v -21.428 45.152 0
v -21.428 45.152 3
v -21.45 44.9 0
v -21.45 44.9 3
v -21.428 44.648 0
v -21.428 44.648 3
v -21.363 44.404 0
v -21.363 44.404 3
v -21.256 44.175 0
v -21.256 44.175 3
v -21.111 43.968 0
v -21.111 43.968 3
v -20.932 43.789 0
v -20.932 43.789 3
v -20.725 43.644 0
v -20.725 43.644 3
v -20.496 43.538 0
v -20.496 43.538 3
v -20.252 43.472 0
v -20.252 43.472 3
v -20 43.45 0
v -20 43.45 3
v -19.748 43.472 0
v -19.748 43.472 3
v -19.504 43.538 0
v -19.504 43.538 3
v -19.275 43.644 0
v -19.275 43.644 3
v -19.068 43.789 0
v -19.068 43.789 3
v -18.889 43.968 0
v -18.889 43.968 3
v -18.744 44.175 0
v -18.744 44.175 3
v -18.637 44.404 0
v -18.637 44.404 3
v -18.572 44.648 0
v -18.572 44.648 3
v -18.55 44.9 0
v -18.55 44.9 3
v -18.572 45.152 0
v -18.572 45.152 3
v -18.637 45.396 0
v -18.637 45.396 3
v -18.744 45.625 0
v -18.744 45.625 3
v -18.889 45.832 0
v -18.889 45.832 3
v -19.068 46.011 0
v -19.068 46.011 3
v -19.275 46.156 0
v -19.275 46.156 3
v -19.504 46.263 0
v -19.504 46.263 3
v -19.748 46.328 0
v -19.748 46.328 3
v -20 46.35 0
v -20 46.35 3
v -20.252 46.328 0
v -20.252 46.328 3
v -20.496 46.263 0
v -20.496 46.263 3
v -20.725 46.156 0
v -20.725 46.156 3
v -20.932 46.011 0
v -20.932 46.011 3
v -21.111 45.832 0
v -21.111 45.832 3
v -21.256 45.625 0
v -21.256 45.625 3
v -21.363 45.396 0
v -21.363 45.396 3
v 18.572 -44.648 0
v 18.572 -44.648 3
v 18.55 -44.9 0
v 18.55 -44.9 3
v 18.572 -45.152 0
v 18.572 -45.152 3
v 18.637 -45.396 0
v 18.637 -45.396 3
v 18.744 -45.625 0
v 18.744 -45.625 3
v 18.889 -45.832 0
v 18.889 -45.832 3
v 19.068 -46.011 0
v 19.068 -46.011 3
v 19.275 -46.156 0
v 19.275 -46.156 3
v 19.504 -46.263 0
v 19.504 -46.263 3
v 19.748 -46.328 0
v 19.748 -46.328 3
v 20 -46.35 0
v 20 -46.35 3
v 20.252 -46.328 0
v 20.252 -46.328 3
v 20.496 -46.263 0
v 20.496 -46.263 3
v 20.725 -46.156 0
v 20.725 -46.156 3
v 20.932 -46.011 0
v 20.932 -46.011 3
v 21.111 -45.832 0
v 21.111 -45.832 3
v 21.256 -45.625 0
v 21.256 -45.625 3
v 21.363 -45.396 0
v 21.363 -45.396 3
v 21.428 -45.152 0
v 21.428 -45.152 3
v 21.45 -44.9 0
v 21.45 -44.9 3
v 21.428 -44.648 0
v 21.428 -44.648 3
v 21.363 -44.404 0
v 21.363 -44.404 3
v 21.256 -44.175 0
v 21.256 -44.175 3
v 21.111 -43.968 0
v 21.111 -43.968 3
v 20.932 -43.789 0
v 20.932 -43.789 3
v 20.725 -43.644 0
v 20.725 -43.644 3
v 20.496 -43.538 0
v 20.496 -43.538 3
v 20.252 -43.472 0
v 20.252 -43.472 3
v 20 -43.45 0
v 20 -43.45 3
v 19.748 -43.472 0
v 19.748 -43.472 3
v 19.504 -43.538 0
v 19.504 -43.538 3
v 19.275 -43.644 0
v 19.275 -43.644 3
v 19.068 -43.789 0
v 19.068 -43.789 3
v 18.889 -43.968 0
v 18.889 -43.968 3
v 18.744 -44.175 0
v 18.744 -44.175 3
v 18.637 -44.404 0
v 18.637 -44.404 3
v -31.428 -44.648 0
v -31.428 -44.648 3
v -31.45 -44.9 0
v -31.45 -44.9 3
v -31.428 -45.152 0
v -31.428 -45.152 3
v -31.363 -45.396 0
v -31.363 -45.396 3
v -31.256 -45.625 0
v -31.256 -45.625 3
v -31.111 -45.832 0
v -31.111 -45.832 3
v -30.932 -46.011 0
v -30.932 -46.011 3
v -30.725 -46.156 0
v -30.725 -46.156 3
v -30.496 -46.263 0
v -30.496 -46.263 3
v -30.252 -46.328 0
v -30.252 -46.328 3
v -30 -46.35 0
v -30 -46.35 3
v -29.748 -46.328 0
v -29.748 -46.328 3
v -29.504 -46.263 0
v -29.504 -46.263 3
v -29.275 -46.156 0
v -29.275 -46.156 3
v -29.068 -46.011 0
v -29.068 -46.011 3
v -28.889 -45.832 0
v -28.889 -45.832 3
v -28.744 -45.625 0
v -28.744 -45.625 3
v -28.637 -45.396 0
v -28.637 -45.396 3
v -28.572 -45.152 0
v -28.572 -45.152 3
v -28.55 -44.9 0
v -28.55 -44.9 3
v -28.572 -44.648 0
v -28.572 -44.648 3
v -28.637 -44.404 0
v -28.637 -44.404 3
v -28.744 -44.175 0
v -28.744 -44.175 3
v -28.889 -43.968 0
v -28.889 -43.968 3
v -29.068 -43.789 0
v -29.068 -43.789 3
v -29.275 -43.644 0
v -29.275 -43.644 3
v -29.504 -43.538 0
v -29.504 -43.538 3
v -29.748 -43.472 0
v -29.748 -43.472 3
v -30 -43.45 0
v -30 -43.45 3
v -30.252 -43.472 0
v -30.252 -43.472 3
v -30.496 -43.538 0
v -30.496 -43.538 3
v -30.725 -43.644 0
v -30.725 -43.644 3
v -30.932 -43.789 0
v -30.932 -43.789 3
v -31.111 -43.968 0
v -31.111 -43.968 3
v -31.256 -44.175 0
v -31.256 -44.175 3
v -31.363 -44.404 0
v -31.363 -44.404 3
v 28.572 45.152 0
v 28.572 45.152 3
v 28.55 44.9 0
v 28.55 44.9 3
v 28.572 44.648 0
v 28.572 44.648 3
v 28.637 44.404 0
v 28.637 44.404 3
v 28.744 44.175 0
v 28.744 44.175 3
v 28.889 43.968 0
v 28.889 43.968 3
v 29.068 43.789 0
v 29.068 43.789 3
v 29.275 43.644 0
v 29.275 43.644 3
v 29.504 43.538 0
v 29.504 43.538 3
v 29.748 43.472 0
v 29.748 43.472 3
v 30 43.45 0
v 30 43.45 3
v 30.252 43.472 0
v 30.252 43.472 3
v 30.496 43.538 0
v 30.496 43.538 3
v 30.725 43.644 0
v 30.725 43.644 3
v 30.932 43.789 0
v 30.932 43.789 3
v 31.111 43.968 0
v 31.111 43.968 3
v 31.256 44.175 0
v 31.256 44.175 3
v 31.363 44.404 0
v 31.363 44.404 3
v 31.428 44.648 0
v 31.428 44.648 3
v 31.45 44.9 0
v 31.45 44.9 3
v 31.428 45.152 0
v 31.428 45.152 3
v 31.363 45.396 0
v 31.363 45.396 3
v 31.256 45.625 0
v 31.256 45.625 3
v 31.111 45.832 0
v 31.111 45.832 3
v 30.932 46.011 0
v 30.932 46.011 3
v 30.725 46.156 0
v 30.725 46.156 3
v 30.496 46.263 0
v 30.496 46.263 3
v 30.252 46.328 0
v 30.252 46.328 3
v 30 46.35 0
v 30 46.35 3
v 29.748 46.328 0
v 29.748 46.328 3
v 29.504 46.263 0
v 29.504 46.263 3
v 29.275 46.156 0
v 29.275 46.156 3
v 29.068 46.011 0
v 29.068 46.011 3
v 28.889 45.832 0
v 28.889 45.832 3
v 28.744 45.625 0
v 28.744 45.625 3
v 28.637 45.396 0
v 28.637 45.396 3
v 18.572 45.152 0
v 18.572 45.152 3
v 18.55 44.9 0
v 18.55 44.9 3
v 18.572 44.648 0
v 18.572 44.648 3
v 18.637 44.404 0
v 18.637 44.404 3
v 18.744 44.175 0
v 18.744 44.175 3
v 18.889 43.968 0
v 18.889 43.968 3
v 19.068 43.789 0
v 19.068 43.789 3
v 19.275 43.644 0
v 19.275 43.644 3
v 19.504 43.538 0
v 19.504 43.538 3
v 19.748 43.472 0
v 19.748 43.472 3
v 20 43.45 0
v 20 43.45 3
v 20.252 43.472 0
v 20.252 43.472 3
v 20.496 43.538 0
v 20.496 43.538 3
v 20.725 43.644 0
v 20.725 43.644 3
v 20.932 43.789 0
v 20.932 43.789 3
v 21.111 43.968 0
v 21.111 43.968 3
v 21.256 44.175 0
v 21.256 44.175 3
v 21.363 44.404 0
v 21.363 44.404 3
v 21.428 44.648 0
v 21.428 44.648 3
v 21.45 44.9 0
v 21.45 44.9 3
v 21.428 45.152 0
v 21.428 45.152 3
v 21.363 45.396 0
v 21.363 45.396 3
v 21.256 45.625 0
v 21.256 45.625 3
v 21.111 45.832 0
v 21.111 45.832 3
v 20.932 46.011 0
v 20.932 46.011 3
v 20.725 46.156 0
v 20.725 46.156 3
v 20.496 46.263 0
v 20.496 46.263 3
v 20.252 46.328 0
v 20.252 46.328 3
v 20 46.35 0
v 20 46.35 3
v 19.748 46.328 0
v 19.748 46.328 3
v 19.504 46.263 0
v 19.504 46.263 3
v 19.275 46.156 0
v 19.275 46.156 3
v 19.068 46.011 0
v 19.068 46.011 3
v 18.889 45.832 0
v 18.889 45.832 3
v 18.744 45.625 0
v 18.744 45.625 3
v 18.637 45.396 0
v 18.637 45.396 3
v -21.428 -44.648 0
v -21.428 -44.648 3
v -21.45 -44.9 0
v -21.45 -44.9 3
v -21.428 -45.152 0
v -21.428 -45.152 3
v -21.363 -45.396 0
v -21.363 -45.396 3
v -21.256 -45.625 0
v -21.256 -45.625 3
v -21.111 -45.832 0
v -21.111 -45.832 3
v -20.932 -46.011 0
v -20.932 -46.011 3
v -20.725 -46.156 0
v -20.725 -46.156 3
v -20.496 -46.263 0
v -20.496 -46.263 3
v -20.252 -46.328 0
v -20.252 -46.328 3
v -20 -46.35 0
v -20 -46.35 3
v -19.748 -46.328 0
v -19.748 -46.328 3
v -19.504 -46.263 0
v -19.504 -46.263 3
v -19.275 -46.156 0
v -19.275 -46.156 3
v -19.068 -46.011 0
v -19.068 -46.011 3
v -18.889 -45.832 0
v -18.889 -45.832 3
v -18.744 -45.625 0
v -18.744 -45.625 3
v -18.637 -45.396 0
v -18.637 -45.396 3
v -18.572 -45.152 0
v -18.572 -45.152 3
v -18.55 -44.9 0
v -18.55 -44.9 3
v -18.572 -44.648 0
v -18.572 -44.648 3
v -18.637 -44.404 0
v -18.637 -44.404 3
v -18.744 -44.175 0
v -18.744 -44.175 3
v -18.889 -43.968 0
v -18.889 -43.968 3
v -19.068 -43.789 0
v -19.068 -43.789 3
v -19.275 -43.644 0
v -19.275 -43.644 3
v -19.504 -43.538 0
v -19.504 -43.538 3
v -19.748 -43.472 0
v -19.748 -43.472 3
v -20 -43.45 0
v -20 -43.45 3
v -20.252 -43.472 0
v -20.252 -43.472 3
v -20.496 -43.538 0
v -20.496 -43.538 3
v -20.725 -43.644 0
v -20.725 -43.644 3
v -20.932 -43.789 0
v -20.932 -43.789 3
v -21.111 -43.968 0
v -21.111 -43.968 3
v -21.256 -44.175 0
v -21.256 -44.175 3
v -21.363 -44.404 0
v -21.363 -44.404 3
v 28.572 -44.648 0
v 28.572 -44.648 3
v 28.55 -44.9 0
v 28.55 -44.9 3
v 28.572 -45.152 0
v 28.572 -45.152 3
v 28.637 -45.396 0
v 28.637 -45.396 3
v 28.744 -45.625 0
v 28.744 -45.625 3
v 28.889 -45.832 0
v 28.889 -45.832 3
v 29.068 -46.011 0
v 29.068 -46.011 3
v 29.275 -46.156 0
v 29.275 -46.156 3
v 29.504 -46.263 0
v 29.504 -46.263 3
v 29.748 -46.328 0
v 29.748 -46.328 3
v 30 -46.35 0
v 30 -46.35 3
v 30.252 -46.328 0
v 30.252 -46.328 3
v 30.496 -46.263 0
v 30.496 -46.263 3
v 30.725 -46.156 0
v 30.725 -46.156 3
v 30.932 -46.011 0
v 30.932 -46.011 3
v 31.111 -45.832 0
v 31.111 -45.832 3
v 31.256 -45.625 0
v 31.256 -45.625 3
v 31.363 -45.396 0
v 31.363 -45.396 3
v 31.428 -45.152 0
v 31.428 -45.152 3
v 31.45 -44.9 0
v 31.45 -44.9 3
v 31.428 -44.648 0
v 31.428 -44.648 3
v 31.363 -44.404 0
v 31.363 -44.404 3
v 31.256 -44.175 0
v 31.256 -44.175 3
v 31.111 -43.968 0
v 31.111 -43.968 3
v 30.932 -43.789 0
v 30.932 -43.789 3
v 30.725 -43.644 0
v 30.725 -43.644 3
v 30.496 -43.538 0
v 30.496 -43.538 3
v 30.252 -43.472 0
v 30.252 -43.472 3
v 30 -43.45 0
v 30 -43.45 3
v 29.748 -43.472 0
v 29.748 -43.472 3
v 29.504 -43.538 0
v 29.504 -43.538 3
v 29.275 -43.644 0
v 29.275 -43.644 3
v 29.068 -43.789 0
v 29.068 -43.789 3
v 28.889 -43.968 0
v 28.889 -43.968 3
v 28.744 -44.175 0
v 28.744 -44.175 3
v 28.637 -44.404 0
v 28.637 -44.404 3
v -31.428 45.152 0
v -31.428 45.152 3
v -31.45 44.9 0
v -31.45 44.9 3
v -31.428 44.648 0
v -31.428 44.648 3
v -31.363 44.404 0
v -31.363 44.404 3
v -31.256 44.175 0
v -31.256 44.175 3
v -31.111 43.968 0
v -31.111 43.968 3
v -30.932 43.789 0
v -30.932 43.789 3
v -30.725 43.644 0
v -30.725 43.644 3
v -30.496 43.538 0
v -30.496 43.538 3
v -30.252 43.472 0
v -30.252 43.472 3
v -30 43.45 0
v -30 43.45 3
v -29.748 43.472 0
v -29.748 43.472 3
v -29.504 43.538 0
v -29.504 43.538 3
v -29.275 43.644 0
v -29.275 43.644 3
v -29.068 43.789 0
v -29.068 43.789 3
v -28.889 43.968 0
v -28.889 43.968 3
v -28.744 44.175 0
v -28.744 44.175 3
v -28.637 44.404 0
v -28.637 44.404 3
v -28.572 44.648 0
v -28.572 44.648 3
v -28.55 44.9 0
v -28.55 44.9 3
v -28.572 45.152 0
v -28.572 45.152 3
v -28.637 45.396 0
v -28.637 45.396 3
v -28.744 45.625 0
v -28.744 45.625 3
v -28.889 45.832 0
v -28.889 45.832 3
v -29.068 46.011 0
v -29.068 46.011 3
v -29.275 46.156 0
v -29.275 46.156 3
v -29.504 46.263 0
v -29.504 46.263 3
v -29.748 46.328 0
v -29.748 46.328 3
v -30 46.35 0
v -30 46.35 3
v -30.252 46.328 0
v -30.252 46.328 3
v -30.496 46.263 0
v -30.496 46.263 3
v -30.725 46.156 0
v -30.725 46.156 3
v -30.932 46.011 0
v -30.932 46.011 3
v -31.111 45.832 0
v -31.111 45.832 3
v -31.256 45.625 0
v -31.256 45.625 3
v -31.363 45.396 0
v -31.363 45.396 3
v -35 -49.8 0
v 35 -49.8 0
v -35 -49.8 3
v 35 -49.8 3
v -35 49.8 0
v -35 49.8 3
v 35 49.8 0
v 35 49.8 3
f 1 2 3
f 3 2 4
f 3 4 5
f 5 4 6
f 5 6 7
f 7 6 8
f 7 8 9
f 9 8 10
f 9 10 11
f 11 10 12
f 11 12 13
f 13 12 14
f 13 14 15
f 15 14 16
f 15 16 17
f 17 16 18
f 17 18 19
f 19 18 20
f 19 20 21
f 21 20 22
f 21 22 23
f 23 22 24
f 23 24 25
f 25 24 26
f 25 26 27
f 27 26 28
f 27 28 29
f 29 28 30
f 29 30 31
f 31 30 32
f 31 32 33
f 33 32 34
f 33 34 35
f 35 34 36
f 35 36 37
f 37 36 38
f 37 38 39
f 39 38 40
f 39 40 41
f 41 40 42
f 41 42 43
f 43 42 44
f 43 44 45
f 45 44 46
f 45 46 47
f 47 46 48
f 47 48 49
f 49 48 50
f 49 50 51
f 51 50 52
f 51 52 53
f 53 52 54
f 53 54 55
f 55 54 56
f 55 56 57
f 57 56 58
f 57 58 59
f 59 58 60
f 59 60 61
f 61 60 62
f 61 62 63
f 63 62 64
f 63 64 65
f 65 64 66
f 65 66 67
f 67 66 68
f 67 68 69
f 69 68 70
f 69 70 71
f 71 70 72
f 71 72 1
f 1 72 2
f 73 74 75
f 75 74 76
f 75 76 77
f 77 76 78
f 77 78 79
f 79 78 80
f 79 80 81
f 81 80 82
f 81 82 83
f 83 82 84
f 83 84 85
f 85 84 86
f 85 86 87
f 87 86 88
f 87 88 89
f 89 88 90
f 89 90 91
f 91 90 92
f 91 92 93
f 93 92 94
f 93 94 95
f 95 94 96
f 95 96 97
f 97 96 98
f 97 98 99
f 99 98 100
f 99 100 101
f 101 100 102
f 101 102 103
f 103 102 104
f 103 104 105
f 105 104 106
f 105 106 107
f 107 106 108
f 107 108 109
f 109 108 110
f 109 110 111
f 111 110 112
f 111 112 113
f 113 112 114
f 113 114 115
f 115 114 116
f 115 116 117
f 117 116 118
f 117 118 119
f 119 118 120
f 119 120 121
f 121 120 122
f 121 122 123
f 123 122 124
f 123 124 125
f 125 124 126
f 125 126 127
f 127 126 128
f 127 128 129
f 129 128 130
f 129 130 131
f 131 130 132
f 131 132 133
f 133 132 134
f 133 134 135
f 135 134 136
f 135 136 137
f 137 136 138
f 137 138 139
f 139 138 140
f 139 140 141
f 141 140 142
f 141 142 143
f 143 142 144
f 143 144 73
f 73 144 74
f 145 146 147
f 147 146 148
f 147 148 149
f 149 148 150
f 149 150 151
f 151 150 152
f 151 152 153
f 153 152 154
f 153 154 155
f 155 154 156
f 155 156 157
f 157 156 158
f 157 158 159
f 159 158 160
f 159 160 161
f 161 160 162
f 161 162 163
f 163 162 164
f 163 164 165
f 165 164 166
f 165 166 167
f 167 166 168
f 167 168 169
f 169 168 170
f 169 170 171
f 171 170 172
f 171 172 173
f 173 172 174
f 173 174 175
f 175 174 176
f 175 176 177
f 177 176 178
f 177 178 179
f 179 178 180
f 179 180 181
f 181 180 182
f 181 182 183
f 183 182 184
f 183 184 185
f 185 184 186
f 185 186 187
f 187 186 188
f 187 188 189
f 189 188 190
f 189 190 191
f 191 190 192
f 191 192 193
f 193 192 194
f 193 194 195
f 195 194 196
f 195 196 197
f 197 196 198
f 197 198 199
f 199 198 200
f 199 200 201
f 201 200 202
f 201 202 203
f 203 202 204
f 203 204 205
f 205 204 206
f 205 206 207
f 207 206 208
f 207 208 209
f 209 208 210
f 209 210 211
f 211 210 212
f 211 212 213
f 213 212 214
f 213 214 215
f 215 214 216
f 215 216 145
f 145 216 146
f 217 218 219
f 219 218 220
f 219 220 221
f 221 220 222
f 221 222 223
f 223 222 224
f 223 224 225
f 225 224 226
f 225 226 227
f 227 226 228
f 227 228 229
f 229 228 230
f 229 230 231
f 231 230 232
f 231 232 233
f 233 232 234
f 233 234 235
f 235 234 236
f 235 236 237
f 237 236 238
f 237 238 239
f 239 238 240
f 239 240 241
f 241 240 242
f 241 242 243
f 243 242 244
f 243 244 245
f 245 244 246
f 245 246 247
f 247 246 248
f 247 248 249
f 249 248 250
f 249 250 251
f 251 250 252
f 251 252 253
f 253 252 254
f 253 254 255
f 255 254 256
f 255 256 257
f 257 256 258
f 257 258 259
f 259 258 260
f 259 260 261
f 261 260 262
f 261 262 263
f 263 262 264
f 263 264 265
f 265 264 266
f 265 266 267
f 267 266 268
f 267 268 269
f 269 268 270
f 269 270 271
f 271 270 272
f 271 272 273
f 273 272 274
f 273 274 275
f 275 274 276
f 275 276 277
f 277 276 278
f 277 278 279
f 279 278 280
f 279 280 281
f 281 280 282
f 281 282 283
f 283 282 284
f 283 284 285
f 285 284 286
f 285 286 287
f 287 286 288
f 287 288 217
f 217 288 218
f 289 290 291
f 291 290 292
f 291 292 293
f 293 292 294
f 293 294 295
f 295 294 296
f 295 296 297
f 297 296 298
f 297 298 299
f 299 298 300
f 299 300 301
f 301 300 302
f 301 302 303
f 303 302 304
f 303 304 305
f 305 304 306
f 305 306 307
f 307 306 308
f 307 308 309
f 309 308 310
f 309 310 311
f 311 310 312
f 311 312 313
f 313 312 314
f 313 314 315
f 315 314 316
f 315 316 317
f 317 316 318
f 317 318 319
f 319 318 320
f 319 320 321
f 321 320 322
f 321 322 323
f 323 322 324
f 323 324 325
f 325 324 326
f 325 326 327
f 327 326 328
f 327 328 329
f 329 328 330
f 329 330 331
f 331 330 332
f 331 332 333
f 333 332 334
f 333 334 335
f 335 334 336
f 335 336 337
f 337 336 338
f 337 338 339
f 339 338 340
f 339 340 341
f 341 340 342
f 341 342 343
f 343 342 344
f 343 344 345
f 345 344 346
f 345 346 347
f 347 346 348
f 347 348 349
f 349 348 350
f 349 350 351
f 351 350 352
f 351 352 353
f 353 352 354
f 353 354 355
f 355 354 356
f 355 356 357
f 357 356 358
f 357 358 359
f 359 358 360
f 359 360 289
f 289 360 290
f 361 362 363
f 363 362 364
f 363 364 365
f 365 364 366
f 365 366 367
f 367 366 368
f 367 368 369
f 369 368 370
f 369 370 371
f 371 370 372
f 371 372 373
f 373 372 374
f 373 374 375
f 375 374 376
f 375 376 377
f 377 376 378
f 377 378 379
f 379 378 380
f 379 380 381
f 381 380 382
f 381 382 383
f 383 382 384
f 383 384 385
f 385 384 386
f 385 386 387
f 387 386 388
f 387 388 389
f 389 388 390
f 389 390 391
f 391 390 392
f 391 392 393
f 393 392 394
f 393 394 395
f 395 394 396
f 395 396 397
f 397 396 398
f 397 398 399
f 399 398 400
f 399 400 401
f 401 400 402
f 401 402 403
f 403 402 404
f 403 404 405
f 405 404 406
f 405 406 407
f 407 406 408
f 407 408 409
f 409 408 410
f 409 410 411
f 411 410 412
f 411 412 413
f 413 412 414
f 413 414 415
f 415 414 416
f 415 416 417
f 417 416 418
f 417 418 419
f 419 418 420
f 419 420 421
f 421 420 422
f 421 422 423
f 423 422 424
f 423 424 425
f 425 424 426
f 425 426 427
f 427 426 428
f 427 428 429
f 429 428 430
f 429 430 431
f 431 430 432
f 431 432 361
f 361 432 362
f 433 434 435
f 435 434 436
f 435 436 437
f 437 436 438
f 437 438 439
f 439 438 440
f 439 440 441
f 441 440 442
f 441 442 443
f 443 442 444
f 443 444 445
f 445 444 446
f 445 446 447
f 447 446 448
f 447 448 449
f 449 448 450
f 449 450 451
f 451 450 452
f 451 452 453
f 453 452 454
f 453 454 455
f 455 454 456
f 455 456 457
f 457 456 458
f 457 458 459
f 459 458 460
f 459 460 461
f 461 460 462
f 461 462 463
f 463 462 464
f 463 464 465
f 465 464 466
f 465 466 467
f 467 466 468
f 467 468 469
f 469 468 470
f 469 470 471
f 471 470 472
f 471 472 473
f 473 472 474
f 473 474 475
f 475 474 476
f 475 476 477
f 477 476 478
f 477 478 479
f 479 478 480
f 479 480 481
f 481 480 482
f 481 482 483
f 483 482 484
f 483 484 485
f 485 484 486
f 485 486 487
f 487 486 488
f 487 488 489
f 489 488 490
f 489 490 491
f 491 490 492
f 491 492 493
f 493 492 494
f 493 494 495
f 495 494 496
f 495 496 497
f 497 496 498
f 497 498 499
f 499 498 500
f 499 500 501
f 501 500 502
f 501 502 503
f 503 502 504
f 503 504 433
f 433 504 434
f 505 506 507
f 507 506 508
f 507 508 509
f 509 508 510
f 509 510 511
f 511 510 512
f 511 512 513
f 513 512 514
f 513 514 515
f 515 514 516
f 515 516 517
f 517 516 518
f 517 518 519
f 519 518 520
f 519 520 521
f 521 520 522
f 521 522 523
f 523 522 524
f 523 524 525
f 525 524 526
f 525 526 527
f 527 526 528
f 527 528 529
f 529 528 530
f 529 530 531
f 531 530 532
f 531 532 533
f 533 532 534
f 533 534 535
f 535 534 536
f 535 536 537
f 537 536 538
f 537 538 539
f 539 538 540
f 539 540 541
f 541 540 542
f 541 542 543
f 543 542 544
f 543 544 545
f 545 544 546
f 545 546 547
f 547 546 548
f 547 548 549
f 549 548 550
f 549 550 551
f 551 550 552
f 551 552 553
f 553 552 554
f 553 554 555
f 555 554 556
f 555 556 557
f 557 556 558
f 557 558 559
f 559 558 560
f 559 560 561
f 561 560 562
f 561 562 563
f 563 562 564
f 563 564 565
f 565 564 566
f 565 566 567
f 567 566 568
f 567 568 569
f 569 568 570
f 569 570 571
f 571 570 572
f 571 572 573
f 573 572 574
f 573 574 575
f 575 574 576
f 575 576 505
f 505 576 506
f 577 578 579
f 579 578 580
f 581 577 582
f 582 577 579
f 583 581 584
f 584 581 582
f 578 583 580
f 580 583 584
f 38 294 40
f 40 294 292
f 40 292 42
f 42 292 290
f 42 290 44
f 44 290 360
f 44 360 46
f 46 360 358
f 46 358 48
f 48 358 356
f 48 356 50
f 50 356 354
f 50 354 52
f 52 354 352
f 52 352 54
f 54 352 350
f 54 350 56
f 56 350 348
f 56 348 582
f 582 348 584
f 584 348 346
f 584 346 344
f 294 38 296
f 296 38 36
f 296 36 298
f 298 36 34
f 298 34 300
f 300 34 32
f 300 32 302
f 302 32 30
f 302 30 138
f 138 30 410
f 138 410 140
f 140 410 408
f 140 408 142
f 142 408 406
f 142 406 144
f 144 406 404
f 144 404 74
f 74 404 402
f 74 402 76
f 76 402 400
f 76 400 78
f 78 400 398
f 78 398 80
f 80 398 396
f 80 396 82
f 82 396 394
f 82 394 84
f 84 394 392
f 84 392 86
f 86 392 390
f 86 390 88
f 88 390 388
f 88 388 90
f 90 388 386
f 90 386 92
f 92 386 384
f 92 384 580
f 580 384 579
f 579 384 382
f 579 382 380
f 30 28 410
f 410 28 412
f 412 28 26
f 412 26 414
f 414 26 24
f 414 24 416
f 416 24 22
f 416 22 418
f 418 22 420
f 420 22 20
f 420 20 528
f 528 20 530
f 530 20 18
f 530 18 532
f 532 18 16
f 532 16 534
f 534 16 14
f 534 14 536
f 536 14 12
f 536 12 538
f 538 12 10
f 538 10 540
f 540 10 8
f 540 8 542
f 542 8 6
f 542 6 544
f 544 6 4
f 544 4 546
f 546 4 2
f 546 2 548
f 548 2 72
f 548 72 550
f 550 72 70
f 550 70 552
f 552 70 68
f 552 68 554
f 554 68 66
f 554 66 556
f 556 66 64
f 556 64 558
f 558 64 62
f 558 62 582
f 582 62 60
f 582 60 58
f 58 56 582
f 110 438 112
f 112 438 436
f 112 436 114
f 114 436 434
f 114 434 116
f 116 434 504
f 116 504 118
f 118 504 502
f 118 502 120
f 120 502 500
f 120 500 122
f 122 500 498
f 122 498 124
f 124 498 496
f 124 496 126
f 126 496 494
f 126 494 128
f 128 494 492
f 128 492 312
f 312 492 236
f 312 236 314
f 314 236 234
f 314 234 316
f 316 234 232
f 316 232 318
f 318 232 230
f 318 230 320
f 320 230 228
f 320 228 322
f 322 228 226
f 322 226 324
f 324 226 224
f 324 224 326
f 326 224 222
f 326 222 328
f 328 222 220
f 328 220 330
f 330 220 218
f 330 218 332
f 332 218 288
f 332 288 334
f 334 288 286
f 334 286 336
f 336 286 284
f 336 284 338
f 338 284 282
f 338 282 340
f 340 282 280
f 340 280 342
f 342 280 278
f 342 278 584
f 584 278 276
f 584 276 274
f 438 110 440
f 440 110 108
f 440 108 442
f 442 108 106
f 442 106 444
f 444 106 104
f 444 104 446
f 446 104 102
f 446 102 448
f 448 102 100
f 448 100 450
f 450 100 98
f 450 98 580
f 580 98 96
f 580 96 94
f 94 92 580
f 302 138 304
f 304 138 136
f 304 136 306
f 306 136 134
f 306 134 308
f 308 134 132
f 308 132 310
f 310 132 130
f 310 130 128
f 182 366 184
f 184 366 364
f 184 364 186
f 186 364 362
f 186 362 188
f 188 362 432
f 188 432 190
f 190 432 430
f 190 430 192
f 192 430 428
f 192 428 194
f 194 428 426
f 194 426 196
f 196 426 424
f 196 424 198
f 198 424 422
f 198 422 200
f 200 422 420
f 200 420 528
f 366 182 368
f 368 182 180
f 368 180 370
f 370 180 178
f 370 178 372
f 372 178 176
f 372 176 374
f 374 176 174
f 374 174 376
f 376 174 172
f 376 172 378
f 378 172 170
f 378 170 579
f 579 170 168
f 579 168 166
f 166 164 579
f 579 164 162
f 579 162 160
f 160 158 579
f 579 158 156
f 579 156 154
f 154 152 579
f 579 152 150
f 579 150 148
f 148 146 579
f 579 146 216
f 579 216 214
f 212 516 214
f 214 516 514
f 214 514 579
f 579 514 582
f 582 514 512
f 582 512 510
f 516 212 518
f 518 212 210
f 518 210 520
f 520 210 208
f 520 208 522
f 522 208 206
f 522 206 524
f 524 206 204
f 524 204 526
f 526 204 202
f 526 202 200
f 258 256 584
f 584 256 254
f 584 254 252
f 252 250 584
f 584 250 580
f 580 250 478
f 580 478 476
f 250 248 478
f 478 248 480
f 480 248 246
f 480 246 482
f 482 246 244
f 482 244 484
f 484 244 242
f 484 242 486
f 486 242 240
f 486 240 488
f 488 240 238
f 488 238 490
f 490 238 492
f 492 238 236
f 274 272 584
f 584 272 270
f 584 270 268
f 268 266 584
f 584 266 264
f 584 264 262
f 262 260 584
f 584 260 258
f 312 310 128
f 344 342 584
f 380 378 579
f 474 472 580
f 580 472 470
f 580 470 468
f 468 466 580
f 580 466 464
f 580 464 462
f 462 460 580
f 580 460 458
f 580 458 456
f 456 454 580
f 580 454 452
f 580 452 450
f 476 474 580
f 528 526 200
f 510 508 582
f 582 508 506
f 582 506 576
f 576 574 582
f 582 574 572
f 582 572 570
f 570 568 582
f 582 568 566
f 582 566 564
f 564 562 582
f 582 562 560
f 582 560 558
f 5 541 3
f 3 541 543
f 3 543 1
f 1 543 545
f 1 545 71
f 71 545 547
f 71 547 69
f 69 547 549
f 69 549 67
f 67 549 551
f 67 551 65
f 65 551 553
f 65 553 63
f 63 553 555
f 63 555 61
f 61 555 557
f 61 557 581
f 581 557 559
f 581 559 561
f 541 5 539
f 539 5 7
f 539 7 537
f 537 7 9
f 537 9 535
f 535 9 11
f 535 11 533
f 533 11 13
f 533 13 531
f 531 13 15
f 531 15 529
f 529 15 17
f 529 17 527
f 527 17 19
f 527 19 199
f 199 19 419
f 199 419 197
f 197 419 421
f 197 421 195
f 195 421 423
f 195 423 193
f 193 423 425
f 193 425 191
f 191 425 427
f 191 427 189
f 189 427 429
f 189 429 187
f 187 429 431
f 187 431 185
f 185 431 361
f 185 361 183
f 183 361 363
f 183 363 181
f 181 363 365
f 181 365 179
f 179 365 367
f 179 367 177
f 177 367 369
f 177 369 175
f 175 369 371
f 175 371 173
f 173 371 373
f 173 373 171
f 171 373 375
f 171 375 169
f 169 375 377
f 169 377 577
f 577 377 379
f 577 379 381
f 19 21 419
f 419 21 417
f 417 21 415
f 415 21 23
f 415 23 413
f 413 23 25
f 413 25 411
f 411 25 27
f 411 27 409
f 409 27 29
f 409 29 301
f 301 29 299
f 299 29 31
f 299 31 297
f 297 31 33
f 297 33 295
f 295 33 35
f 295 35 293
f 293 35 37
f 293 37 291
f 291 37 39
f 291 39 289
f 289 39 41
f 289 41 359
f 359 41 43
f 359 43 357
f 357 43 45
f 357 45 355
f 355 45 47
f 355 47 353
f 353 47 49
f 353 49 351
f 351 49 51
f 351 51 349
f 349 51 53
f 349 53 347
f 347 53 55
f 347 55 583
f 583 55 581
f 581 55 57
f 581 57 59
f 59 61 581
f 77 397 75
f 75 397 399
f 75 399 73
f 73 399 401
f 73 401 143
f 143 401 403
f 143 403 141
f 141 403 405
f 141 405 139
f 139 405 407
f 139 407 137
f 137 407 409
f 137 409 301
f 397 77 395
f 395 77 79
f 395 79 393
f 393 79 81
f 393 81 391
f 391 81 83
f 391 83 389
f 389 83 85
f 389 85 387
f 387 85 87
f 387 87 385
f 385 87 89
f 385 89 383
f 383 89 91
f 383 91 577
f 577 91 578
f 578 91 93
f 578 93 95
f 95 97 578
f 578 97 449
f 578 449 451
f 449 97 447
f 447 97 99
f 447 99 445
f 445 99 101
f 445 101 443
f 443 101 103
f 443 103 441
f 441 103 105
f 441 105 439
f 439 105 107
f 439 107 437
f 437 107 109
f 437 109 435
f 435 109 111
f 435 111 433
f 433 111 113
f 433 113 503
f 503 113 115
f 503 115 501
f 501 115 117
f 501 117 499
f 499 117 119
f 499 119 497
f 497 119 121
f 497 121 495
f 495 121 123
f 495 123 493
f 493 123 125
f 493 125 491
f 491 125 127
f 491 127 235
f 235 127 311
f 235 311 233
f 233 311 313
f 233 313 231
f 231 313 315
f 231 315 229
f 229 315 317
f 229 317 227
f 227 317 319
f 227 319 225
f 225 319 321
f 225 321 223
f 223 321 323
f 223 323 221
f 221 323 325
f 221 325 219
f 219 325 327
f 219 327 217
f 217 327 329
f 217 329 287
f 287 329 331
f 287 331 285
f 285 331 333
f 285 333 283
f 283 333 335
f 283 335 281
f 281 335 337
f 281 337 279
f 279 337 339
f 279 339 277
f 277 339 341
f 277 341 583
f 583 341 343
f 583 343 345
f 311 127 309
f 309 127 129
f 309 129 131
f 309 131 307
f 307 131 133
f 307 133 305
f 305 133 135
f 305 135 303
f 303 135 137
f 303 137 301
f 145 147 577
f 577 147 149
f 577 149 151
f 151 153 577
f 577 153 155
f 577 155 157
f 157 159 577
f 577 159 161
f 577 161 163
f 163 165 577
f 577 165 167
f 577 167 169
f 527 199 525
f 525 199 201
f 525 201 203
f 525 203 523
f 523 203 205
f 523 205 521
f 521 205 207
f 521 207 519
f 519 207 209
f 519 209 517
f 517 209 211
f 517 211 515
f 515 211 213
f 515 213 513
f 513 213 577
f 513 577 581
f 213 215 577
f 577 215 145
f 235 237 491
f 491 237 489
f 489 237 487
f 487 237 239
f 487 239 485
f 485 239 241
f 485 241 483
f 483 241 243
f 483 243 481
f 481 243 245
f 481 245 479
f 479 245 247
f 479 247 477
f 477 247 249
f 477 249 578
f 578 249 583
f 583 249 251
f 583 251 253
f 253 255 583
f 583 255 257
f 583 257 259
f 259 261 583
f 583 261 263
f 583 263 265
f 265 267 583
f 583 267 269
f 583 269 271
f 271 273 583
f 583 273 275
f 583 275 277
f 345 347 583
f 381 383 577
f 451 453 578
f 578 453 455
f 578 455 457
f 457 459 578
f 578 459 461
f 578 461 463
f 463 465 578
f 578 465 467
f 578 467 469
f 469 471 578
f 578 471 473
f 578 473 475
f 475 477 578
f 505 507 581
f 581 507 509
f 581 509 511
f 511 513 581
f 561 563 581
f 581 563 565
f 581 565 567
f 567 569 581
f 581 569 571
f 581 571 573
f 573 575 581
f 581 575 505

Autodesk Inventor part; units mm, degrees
ref_plane "YZ Plane" through (0, 0, 0) normal (1, 0, 0) x (0, 1, 0)
ref_plane "XZ Plane" through (0, 0, 0) normal (0, 1, 0) x (-1, 0, 0)
ref_plane "XY Plane" through (0, 0, 0) normal (0, 0, 1) x (1, 0, 0)
ref_plane "Arbeitsebene1" through (0, 0, 0) normal (0, 0, 1) x (1, 0, 0)
sketch "Skizze1" plane through (0, 0, 0) normal (0, 0, 1) x (1, 0, 0)
  circle A0 centre (-20, -44.9) radius 1.75 projected
  circle A1 centre (30, -44.9) radius 1.75 projected
  circle A2 centre (20, -44.9) radius 1.75 projected
  circle A3 centre (-30, -44.9) radius 1.75 projected
  line L0 (-35, -49.8) -> (-35, -35.9) projected
  line L1 (35, -49.8) -> (-35, -49.8) projected
  line L2 (35, -35.9) -> (35, -49.8) projected
  line L3 (-35, -35.9) -> (35, -35.9) projected
  arc A4 (-19.0986, 43.4) -> (-20.9014, 43.4) centre (-20, 44.9) ccw projected
  line L4 (19.0986, 43.4) -> (-19.0986, 43.4) projected
  arc A5 (20.9014, 43.4) -> (19.0986, 43.4) centre (20, 44.9) ccw projected
  line L5 (29.0986, 43.4) -> (20.9014, 43.4) projected
  arc A6 (30.9014, 43.4) -> (29.0986, 43.4) centre (30, 44.9) ccw projected
  line L6 (35, 43.4) -> (30.9014, 43.4) projected
  line L7 (35, 49.8) -> (35, 43.4) projected
  line L8 (-35, 49.8) -> (35, 49.8) projected
  line L9 (-35, 43.4) -> (-35, 49.8) projected
  line L10 (-30.9014, 43.4) -> (-35, 43.4) projected
  arc A7 (-29.0986, 43.4) -> (-30.9014, 43.4) centre (-30, 44.9) ccw projected
  line L11 (-20.9014, 43.4) -> (-29.0986, 43.4) projected
  line L12 (35, -49.8) -> (-35, -49.8)
  line L13 (-35, -49.8) -> (-35, 49.8)
  line L14 (-35, 49.8) -> (35, 49.8)
  line L15 (35, 49.8) -> (35, -49.8)
  point P0 (0, 0)
extrude "Extrusion1" add sketch "Skizze1" along normal blind 3 contours A0 | A1 | A2 | A3 | L0 L3 L2 L1 | L13 L10 A7 L11 A4 L4 A5 L5 A6 L6 L15 L3 | L9 L8 L7 L6 A6 L5 A5 L4 A4 L11 A7 L10
sketch "Skizze2" plane through (0, 0, 3) normal (0, 0, 1) x (1, 0, 0)
  circle A0 centre (30, -44.9) radius 1.75 projected
  circle A1 centre (20, -44.9) radius 1.75 projected
  circle A2 centre (-20, -44.9) radius 1.75 projected
  circle A3 centre (-30, -44.9) radius 1.75 projected
  arc A4 (30.9014, 43.4) -> (29.0986, 43.4) centre (30, 44.9) ccw projected
  arc A5 (20.9014, 43.4) -> (19.0986, 43.4) centre (20, 44.9) ccw projected
  arc A6 (-19.0986, 43.4) -> (-20.9014, 43.4) centre (-20, 44.9) ccw projected
  arc A7 (-29.0986, 43.4) -> (-30.9014, 43.4) centre (-30, 44.9) ccw projected
  point P0 (0, 0)
hole "Bohrung1" at (30, 44.9, 3) at (20, 44.9, 3) at (-30, -44.9, 3) at (-20, -44.9, 3) at (20, -44.9, 3) at (30, -44.9, 3) at (-20, 44.9, 3) at (-30, 44.9, 3) direction (0, 0, -1) diameter 2.9 end through all
properties part number "20_Projector_Sony_Moun_2"
